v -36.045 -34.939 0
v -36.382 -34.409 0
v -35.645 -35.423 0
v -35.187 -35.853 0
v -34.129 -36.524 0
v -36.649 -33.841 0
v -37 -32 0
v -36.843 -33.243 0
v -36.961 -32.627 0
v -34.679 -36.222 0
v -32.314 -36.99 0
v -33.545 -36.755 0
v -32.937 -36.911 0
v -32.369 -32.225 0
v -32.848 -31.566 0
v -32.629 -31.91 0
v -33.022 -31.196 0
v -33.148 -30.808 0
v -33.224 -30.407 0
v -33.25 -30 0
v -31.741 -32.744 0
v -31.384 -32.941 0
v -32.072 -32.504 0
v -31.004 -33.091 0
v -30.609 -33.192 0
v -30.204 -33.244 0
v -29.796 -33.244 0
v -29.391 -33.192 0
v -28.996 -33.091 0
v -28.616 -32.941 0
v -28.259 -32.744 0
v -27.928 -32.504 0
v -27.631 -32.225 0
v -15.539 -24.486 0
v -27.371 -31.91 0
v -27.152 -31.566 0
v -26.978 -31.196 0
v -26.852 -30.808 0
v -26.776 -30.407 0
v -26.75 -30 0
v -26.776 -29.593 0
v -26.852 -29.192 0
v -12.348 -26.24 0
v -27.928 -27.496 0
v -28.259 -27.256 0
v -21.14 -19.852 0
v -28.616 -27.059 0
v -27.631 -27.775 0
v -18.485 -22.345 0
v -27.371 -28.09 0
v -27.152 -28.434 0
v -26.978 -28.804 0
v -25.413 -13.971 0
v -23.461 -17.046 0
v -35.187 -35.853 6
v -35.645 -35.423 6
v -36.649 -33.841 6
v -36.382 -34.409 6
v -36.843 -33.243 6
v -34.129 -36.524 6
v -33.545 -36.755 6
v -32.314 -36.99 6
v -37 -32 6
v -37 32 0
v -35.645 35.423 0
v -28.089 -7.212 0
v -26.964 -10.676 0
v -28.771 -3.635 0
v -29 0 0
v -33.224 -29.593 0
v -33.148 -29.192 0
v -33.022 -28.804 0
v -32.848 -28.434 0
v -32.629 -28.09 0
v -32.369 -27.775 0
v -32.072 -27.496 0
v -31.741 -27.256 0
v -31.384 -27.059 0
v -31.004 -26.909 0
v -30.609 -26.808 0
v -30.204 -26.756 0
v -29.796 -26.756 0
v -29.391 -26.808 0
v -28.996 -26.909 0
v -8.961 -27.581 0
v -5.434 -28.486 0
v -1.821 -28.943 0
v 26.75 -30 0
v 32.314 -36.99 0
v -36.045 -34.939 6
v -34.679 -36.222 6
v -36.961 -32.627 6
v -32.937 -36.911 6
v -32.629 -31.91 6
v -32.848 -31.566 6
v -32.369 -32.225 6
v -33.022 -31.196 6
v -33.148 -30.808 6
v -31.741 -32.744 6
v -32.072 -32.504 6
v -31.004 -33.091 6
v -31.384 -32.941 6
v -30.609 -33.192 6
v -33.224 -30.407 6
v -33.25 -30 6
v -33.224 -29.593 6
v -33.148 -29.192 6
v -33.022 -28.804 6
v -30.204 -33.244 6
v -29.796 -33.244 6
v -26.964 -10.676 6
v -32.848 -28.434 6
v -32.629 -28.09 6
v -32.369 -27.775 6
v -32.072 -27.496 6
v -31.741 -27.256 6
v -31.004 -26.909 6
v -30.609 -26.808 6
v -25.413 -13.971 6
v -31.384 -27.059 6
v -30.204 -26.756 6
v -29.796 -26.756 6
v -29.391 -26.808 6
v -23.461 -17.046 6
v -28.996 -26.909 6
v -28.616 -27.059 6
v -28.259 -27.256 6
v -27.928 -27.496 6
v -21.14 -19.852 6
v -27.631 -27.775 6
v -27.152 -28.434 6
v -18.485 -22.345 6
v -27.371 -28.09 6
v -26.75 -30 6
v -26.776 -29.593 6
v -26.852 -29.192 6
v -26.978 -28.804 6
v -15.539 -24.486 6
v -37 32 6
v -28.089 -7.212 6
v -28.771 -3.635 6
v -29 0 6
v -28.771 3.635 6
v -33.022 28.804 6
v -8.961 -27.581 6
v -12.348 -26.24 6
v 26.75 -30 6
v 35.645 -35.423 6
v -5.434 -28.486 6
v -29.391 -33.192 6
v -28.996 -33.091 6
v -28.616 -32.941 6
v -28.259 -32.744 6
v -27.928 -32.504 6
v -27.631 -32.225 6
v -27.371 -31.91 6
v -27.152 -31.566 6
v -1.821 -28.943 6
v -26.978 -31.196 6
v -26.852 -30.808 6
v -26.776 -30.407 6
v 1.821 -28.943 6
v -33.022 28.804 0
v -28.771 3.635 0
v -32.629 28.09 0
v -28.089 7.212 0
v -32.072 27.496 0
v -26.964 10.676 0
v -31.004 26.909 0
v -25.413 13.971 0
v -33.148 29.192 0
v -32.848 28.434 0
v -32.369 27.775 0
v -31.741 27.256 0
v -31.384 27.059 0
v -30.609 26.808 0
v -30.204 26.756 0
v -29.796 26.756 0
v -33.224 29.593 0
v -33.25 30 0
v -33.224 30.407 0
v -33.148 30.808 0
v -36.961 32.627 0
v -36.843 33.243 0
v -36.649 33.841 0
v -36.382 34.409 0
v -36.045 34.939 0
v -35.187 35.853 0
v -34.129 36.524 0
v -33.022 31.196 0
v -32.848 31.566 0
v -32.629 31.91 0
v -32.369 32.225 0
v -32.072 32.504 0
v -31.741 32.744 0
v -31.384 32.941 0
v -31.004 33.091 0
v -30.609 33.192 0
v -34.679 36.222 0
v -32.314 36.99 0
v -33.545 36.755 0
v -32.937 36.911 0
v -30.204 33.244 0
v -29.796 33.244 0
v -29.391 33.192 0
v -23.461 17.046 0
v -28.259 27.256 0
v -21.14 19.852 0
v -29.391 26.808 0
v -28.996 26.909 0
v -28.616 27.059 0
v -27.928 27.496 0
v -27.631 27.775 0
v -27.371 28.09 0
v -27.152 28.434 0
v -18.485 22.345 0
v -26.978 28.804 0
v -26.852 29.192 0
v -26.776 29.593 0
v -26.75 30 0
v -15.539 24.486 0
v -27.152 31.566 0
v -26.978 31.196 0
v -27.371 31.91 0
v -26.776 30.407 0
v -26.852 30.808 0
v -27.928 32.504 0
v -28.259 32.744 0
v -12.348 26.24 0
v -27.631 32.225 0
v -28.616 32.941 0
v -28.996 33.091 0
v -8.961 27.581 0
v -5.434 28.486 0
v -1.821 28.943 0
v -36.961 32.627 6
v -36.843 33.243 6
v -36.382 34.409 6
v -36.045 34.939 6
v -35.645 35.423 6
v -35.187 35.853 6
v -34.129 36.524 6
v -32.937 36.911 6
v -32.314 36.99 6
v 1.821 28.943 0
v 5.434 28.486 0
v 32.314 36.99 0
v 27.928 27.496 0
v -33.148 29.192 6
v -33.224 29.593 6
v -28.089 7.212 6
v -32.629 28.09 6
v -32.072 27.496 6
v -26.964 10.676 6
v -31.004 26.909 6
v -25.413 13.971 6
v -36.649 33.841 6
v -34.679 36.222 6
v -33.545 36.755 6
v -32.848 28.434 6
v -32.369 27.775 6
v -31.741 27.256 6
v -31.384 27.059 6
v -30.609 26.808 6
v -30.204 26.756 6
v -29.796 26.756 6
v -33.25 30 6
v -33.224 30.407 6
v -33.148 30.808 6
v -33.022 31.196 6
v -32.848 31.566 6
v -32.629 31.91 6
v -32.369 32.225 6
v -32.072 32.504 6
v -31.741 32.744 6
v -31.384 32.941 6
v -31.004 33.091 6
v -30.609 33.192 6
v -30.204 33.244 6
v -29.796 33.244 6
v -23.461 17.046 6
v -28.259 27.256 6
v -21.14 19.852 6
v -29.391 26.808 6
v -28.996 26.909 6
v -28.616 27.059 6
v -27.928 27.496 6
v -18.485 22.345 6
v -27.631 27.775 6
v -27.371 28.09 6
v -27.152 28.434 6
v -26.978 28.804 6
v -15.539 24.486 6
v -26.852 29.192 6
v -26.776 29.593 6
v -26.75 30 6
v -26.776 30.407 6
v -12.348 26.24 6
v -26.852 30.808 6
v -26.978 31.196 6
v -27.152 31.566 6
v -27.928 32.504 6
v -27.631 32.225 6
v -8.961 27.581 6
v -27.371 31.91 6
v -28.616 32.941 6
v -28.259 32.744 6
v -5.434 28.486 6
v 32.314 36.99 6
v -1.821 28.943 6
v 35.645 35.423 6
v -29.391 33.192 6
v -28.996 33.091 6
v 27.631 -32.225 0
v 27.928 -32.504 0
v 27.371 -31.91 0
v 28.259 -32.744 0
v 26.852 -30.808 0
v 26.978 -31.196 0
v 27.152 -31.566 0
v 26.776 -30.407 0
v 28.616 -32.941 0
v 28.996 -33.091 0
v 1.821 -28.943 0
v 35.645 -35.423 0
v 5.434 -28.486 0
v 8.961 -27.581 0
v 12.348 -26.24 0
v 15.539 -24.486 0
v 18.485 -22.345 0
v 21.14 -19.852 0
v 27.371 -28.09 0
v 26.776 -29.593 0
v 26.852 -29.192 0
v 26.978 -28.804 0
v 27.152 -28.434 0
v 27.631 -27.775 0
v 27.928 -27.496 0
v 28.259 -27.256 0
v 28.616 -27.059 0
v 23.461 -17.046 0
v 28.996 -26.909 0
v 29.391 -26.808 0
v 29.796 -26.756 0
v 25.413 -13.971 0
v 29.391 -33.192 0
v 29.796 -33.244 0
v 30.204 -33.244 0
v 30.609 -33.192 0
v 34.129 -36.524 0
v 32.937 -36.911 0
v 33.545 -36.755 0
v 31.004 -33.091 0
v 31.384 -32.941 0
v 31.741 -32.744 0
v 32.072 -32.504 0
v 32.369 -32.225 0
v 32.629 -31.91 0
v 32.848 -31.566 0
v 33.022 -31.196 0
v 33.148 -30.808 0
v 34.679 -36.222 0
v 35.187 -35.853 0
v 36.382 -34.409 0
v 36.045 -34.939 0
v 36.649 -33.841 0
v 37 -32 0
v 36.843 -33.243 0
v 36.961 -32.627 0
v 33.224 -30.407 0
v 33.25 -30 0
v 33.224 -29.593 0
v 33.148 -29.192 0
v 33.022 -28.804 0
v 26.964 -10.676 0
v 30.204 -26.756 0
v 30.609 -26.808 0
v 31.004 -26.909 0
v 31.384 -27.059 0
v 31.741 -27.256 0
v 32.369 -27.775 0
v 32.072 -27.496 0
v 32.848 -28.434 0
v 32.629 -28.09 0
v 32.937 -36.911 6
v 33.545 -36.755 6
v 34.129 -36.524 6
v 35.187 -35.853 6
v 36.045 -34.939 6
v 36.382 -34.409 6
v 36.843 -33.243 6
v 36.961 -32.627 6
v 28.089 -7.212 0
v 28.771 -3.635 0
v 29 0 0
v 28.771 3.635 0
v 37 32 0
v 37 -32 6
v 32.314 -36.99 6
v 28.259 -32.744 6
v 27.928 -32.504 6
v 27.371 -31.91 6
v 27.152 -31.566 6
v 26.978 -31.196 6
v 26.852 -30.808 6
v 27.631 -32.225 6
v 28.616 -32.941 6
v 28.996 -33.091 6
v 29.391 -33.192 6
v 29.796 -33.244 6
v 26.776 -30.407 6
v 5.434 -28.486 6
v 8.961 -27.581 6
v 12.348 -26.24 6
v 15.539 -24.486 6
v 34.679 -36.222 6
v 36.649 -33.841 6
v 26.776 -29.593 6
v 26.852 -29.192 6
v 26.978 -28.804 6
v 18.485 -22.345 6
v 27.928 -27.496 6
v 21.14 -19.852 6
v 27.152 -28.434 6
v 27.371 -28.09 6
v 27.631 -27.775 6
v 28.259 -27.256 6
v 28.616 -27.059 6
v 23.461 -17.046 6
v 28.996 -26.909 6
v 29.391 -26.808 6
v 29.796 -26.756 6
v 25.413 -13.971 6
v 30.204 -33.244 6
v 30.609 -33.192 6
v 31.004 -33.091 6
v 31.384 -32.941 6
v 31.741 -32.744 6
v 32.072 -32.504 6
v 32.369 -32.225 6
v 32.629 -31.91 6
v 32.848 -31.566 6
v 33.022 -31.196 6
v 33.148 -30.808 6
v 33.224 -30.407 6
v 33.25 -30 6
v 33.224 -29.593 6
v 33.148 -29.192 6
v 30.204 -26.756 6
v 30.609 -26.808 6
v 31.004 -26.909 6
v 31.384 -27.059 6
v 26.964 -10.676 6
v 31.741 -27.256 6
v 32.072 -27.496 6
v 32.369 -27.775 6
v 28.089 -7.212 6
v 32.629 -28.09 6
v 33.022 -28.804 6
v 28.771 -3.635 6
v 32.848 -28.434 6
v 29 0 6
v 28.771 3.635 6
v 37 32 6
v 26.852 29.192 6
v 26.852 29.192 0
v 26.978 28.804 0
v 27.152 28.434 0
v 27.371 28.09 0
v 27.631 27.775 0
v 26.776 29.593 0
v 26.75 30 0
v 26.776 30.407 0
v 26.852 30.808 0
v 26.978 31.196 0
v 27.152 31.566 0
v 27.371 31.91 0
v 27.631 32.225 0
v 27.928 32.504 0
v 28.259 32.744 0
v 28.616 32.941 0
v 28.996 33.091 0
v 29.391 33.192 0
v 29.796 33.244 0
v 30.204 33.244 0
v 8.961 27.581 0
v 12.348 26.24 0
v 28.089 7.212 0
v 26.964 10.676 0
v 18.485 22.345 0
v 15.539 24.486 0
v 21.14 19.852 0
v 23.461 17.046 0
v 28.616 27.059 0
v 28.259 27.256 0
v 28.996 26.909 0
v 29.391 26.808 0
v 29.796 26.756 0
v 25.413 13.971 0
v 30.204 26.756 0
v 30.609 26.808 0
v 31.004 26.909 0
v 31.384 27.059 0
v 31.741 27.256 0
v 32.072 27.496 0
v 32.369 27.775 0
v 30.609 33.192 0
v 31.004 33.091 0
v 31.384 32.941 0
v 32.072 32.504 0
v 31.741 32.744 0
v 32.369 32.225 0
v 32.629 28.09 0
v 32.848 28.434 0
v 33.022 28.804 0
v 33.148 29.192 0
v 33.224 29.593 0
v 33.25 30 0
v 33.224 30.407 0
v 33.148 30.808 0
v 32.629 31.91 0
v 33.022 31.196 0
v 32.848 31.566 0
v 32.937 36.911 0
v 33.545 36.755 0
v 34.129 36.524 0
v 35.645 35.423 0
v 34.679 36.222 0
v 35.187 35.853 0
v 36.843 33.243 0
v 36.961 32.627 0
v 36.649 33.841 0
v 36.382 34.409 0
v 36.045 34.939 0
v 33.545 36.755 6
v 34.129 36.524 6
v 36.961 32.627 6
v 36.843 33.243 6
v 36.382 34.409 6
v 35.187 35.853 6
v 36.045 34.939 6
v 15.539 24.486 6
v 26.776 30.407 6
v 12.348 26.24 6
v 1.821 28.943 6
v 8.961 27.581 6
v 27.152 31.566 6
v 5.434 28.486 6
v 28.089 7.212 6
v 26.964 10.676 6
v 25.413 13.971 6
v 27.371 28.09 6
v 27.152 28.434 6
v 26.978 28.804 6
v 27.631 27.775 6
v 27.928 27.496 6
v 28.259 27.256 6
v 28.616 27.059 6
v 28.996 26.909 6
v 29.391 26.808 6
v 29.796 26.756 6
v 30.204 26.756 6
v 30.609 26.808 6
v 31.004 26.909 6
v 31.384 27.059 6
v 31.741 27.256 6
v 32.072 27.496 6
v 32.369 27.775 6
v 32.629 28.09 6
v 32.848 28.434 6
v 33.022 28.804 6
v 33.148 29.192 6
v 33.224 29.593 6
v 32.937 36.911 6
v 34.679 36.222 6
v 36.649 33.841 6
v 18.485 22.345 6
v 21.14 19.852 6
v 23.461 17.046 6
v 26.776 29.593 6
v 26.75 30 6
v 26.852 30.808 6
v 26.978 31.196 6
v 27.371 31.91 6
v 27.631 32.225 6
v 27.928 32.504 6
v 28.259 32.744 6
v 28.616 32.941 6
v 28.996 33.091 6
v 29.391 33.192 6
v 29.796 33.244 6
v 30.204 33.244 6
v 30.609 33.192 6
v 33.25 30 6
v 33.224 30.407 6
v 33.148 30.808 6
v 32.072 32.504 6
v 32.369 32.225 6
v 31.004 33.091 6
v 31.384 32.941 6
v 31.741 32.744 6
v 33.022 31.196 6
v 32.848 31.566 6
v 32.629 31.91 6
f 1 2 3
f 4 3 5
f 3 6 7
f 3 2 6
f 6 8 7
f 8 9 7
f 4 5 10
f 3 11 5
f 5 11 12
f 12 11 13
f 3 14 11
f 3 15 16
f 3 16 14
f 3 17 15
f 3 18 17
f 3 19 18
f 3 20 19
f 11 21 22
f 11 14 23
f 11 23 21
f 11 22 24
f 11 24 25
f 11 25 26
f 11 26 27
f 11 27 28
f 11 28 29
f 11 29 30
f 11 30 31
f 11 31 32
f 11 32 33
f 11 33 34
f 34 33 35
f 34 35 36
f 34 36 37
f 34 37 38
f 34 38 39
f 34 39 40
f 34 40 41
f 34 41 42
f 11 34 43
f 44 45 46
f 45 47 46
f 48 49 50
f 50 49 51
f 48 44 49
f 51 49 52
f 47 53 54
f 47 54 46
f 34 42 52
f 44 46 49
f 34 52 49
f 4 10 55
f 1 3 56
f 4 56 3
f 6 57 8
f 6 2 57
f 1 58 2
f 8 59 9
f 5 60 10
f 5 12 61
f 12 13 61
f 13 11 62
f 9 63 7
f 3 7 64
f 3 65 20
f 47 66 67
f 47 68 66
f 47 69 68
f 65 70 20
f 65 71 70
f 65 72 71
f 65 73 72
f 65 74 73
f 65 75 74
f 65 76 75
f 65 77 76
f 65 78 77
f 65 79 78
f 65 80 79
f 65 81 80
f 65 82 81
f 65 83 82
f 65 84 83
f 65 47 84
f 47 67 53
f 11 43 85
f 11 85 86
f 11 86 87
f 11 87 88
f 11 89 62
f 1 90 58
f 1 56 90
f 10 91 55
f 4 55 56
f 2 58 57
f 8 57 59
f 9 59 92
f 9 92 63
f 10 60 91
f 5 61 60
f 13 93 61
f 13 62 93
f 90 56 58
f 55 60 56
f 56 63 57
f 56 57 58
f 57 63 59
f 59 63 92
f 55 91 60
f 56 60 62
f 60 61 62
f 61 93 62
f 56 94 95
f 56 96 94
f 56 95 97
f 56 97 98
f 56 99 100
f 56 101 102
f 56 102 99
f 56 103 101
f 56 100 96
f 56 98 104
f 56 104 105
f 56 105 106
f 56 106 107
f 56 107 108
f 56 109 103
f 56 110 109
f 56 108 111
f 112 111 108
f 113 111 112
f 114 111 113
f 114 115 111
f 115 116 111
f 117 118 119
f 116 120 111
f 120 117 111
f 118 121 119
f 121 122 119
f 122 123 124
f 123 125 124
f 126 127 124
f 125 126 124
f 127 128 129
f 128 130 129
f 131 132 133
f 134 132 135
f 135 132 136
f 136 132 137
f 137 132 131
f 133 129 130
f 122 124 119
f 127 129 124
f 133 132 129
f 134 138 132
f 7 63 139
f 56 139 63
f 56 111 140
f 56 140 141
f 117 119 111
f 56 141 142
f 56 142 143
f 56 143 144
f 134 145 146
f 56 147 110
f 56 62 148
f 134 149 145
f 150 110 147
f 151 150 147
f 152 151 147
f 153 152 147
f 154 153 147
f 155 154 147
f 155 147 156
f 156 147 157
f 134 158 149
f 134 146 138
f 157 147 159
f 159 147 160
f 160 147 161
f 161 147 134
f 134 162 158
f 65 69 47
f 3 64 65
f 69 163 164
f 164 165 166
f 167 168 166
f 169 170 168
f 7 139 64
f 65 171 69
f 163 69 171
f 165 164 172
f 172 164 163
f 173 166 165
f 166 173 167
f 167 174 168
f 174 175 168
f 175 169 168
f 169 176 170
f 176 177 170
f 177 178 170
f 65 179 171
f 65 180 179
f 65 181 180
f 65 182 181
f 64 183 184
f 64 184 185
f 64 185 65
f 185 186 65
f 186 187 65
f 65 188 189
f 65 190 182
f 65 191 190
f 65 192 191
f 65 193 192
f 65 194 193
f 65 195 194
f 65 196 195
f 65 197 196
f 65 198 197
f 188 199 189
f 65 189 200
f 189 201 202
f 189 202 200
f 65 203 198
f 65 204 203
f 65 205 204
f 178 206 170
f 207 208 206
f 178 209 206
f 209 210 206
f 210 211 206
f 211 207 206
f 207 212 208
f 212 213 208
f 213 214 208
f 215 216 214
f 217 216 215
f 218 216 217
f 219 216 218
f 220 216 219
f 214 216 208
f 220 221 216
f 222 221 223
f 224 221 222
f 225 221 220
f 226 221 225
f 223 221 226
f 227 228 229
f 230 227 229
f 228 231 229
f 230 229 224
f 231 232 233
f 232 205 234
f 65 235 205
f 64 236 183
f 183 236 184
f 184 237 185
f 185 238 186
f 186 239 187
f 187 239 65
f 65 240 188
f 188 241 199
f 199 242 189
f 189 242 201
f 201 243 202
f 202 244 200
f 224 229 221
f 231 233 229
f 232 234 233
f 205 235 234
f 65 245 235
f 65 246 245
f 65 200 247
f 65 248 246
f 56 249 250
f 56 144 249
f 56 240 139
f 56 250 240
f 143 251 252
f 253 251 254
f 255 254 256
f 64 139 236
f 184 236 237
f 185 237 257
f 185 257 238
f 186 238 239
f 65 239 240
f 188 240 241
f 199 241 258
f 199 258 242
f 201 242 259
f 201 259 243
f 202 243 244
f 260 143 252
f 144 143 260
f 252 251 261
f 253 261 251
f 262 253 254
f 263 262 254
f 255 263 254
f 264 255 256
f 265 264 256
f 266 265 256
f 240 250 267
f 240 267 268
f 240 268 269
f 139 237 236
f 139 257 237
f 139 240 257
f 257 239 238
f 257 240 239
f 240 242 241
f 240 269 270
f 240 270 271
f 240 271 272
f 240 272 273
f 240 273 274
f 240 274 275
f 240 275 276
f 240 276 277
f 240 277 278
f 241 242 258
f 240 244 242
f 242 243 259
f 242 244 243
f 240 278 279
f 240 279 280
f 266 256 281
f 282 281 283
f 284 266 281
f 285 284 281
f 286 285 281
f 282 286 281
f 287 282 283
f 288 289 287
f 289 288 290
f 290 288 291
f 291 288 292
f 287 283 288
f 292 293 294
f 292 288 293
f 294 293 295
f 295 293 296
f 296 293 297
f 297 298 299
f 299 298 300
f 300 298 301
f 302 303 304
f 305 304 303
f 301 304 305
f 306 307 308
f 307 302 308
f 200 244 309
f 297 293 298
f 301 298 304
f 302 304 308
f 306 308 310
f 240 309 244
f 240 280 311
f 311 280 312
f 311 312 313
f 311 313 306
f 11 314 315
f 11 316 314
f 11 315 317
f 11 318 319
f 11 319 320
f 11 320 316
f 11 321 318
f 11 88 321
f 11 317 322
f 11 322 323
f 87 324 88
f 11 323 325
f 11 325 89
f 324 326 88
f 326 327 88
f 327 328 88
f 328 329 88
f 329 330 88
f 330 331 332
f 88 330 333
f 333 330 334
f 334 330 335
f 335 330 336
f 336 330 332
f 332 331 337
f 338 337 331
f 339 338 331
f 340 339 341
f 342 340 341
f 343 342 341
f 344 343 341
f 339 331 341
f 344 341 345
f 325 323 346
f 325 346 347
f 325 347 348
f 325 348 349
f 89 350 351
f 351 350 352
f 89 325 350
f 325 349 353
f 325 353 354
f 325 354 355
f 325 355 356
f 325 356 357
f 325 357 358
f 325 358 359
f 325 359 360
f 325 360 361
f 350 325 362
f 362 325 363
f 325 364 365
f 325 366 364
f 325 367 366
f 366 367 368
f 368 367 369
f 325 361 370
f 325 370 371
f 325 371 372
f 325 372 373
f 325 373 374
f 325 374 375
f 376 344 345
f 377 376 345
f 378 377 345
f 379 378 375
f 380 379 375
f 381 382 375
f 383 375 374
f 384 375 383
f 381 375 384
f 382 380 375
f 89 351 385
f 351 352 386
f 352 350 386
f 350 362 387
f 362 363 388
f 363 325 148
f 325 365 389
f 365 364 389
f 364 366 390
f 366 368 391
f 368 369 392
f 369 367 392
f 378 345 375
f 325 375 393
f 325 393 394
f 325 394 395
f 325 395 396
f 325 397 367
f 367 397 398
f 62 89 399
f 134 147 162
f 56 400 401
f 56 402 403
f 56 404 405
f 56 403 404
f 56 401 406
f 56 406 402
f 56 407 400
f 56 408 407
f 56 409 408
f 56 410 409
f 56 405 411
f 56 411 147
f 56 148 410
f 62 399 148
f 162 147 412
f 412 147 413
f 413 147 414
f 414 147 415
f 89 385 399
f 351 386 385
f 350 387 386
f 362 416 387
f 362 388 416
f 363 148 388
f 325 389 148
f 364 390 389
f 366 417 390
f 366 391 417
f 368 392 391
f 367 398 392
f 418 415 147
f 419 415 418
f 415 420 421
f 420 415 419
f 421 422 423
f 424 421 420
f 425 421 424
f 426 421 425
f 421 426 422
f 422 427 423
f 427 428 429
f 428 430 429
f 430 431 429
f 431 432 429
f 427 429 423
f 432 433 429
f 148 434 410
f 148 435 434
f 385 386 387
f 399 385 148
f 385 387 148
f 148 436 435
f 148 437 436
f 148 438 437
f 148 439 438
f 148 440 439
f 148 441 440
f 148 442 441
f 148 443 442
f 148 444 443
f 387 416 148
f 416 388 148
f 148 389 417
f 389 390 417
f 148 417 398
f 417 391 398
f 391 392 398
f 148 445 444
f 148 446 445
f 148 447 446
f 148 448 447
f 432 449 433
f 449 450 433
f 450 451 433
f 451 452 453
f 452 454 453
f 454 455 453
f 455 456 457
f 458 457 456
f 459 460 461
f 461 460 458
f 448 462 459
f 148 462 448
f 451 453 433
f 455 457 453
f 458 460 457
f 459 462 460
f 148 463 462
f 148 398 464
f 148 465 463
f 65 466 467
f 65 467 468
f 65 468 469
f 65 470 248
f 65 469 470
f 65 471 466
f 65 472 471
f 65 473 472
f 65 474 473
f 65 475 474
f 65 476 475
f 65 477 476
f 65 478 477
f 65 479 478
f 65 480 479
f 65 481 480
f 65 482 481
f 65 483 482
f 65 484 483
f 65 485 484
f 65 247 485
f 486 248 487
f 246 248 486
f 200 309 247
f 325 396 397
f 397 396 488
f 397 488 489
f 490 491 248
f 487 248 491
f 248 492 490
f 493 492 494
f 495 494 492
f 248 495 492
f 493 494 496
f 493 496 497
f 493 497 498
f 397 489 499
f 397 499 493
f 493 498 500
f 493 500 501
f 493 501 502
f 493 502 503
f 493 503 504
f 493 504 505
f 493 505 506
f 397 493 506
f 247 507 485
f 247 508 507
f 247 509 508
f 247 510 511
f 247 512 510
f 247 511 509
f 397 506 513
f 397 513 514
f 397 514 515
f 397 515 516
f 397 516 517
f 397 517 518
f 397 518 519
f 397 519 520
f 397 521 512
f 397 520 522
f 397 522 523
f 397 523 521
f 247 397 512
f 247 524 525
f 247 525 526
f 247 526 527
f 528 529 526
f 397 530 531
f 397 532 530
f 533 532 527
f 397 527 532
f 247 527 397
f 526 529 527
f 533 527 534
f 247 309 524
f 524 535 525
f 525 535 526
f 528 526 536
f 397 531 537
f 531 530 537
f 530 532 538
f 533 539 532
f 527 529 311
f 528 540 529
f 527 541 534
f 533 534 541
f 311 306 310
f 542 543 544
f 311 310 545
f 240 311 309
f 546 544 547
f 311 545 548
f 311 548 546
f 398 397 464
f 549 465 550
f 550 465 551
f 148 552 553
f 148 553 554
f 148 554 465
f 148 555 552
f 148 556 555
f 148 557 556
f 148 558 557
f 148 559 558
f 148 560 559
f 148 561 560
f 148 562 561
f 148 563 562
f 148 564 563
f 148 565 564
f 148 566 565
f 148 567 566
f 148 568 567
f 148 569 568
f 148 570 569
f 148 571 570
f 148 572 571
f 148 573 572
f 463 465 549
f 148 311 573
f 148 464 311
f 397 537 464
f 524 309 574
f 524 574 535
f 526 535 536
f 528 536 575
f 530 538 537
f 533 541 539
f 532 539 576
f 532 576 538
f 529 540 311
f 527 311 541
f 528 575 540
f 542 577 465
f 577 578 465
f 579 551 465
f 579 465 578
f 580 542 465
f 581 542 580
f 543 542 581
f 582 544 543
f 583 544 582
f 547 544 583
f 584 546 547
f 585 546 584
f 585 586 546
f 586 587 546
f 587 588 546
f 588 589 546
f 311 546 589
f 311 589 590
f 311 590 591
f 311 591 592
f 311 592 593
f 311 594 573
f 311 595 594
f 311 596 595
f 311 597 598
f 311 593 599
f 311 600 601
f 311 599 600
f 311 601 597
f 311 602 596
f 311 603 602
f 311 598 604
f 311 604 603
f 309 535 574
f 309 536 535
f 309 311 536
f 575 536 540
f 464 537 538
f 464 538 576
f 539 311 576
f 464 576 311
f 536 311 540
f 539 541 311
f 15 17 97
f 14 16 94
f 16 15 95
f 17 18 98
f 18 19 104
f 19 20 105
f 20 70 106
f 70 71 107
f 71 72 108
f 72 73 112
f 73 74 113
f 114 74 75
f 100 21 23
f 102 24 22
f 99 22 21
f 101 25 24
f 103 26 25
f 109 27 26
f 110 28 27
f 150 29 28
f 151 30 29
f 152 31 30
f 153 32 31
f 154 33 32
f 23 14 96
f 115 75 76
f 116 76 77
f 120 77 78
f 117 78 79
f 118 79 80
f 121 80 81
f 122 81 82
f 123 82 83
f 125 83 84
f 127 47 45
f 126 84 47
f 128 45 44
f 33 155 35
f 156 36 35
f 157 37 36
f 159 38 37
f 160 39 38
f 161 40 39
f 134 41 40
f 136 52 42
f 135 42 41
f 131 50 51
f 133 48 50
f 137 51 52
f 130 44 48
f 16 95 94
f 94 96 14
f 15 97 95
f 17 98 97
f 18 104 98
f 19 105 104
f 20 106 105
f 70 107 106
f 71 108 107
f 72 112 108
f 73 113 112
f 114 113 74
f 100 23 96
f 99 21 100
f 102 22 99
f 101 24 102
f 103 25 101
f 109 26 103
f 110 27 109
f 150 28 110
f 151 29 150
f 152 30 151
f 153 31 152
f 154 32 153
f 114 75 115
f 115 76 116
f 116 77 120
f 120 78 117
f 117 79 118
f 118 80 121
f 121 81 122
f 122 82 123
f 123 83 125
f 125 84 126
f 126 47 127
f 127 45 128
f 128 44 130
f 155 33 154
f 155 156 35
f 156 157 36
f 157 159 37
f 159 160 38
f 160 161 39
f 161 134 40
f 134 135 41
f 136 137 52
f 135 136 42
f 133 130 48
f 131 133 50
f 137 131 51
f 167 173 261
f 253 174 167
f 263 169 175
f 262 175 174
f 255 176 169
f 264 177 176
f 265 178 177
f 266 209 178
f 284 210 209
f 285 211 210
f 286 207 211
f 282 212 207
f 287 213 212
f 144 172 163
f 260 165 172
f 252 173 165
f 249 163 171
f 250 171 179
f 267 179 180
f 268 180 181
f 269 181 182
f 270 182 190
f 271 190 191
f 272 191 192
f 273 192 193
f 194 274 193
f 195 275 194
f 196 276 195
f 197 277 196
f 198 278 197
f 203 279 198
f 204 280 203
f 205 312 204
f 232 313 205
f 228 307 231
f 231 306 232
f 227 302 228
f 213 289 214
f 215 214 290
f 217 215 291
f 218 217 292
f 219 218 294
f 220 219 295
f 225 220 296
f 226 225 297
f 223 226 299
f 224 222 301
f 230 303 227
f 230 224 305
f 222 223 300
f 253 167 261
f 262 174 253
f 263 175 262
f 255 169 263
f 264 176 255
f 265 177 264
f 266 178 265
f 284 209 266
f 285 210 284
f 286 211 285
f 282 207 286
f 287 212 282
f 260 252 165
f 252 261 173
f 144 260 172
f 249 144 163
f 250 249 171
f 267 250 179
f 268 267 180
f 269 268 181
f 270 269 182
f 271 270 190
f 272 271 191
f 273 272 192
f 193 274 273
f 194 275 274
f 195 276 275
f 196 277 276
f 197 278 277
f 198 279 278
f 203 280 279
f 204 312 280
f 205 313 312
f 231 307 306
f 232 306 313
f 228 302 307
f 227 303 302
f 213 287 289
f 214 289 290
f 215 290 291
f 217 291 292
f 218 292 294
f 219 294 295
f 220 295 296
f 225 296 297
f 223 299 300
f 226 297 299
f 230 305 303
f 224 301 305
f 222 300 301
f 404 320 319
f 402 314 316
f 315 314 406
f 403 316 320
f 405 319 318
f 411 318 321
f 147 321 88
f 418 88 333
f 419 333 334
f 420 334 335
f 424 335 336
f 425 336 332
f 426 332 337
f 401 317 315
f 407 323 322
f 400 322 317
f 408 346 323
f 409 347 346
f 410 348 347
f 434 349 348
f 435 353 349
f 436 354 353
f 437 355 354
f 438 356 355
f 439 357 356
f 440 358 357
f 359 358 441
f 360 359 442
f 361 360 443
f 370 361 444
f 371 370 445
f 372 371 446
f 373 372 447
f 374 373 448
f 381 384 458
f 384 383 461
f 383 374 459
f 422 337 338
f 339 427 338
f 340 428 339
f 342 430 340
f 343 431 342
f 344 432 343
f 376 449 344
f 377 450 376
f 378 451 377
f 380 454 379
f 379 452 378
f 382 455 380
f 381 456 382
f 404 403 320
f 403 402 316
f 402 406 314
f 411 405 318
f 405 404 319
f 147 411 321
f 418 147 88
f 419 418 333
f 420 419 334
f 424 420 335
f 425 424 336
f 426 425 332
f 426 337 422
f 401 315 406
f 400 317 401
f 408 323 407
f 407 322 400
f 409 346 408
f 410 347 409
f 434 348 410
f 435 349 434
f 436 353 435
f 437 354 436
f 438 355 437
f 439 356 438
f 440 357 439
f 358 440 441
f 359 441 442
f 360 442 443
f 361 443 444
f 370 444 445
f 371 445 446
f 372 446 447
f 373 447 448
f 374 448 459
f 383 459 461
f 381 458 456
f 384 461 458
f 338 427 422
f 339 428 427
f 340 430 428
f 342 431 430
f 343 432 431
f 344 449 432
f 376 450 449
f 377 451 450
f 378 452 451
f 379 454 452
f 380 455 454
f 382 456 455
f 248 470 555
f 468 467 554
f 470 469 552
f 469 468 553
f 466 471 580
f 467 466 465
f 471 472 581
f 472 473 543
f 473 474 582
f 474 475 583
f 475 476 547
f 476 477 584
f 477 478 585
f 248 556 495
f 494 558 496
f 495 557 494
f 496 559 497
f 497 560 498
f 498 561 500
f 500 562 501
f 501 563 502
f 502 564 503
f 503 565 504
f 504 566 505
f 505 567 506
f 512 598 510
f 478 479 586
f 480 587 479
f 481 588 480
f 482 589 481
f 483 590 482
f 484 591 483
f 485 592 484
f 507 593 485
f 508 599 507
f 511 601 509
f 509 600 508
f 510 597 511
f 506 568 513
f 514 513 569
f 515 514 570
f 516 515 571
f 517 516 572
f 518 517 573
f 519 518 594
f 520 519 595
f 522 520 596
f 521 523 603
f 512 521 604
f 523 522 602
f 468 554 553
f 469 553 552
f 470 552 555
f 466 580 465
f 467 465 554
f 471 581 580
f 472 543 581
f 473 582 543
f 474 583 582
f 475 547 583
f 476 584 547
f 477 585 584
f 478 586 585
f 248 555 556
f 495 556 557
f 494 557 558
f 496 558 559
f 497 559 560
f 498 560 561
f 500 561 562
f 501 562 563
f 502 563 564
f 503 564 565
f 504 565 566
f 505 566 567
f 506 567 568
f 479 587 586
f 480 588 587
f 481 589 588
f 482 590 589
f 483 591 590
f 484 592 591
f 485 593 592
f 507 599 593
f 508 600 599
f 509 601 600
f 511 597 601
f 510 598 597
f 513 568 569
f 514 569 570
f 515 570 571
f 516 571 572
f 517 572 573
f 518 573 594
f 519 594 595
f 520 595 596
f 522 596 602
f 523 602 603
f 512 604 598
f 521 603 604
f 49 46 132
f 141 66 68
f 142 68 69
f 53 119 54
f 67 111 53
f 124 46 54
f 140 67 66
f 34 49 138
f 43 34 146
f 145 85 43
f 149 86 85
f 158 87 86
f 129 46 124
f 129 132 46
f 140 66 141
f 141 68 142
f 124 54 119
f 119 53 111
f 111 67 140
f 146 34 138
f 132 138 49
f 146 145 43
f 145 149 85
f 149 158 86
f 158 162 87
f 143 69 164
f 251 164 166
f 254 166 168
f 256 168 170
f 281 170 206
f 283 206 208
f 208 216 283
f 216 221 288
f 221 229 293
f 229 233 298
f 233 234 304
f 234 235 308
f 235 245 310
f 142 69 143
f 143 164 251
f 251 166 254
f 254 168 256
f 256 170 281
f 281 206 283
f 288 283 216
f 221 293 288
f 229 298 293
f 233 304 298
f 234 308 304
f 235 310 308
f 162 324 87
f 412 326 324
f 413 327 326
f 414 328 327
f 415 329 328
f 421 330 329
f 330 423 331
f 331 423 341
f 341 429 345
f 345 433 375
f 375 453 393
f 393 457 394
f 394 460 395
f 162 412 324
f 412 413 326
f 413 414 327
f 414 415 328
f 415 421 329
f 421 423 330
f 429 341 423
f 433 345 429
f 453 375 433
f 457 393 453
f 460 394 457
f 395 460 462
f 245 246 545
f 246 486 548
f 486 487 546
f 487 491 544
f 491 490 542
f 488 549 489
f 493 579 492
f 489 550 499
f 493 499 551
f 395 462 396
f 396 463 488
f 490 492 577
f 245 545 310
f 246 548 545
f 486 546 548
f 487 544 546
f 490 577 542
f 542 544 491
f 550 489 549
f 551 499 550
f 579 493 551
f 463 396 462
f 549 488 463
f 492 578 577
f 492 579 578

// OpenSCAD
$fn = 50;

difference() {
	union() {
		hull() {
			translate(v = [-32.0, 32.0, 0]) {
				cylinder(h = 6, r = 5);
			}
			translate(v = [32.0, 32.0, 0]) {
				cylinder(h = 6, r = 5);
			}
			translate(v = [-32.0, -32.0, 0]) {
				cylinder(h = 6, r = 5);
			}
			translate(v = [32.0, -32.0, 0]) {
				cylinder(h = 6, r = 5);
			}
		}
	}
	union() {
		translate(v = [-30.0, -30.0, -100.0]) {
			cylinder(h = 200, r = 3.25);
		}
		translate(v = [-30.0, 30.0, -100.0]) {
			cylinder(h = 200, r = 3.25);
		}
		translate(v = [30.0, -30.0, -100.0]) {
			cylinder(h = 200, r = 3.25);
		}
		translate(v = [30.0, 30.0, -100.0]) {
			cylinder(h = 200, r = 3.25);
		}
		translate(v = [-30.0, -30.0, -100.0]) {
			cylinder(h = 200, r = 1.8);
		}
		translate(v = [-30.0, 30.0, -100.0]) {
			cylinder(h = 200, r = 1.8);
		}
		translate(v = [30.0, -30.0, -100.0]) {
			cylinder(h = 200, r = 1.8);
		}
		translate(v = [30.0, 30.0, -100.0]) {
			cylinder(h = 200, r = 1.8);
		}
		cylinder(h = 6, r = 29.0);
	}
}
